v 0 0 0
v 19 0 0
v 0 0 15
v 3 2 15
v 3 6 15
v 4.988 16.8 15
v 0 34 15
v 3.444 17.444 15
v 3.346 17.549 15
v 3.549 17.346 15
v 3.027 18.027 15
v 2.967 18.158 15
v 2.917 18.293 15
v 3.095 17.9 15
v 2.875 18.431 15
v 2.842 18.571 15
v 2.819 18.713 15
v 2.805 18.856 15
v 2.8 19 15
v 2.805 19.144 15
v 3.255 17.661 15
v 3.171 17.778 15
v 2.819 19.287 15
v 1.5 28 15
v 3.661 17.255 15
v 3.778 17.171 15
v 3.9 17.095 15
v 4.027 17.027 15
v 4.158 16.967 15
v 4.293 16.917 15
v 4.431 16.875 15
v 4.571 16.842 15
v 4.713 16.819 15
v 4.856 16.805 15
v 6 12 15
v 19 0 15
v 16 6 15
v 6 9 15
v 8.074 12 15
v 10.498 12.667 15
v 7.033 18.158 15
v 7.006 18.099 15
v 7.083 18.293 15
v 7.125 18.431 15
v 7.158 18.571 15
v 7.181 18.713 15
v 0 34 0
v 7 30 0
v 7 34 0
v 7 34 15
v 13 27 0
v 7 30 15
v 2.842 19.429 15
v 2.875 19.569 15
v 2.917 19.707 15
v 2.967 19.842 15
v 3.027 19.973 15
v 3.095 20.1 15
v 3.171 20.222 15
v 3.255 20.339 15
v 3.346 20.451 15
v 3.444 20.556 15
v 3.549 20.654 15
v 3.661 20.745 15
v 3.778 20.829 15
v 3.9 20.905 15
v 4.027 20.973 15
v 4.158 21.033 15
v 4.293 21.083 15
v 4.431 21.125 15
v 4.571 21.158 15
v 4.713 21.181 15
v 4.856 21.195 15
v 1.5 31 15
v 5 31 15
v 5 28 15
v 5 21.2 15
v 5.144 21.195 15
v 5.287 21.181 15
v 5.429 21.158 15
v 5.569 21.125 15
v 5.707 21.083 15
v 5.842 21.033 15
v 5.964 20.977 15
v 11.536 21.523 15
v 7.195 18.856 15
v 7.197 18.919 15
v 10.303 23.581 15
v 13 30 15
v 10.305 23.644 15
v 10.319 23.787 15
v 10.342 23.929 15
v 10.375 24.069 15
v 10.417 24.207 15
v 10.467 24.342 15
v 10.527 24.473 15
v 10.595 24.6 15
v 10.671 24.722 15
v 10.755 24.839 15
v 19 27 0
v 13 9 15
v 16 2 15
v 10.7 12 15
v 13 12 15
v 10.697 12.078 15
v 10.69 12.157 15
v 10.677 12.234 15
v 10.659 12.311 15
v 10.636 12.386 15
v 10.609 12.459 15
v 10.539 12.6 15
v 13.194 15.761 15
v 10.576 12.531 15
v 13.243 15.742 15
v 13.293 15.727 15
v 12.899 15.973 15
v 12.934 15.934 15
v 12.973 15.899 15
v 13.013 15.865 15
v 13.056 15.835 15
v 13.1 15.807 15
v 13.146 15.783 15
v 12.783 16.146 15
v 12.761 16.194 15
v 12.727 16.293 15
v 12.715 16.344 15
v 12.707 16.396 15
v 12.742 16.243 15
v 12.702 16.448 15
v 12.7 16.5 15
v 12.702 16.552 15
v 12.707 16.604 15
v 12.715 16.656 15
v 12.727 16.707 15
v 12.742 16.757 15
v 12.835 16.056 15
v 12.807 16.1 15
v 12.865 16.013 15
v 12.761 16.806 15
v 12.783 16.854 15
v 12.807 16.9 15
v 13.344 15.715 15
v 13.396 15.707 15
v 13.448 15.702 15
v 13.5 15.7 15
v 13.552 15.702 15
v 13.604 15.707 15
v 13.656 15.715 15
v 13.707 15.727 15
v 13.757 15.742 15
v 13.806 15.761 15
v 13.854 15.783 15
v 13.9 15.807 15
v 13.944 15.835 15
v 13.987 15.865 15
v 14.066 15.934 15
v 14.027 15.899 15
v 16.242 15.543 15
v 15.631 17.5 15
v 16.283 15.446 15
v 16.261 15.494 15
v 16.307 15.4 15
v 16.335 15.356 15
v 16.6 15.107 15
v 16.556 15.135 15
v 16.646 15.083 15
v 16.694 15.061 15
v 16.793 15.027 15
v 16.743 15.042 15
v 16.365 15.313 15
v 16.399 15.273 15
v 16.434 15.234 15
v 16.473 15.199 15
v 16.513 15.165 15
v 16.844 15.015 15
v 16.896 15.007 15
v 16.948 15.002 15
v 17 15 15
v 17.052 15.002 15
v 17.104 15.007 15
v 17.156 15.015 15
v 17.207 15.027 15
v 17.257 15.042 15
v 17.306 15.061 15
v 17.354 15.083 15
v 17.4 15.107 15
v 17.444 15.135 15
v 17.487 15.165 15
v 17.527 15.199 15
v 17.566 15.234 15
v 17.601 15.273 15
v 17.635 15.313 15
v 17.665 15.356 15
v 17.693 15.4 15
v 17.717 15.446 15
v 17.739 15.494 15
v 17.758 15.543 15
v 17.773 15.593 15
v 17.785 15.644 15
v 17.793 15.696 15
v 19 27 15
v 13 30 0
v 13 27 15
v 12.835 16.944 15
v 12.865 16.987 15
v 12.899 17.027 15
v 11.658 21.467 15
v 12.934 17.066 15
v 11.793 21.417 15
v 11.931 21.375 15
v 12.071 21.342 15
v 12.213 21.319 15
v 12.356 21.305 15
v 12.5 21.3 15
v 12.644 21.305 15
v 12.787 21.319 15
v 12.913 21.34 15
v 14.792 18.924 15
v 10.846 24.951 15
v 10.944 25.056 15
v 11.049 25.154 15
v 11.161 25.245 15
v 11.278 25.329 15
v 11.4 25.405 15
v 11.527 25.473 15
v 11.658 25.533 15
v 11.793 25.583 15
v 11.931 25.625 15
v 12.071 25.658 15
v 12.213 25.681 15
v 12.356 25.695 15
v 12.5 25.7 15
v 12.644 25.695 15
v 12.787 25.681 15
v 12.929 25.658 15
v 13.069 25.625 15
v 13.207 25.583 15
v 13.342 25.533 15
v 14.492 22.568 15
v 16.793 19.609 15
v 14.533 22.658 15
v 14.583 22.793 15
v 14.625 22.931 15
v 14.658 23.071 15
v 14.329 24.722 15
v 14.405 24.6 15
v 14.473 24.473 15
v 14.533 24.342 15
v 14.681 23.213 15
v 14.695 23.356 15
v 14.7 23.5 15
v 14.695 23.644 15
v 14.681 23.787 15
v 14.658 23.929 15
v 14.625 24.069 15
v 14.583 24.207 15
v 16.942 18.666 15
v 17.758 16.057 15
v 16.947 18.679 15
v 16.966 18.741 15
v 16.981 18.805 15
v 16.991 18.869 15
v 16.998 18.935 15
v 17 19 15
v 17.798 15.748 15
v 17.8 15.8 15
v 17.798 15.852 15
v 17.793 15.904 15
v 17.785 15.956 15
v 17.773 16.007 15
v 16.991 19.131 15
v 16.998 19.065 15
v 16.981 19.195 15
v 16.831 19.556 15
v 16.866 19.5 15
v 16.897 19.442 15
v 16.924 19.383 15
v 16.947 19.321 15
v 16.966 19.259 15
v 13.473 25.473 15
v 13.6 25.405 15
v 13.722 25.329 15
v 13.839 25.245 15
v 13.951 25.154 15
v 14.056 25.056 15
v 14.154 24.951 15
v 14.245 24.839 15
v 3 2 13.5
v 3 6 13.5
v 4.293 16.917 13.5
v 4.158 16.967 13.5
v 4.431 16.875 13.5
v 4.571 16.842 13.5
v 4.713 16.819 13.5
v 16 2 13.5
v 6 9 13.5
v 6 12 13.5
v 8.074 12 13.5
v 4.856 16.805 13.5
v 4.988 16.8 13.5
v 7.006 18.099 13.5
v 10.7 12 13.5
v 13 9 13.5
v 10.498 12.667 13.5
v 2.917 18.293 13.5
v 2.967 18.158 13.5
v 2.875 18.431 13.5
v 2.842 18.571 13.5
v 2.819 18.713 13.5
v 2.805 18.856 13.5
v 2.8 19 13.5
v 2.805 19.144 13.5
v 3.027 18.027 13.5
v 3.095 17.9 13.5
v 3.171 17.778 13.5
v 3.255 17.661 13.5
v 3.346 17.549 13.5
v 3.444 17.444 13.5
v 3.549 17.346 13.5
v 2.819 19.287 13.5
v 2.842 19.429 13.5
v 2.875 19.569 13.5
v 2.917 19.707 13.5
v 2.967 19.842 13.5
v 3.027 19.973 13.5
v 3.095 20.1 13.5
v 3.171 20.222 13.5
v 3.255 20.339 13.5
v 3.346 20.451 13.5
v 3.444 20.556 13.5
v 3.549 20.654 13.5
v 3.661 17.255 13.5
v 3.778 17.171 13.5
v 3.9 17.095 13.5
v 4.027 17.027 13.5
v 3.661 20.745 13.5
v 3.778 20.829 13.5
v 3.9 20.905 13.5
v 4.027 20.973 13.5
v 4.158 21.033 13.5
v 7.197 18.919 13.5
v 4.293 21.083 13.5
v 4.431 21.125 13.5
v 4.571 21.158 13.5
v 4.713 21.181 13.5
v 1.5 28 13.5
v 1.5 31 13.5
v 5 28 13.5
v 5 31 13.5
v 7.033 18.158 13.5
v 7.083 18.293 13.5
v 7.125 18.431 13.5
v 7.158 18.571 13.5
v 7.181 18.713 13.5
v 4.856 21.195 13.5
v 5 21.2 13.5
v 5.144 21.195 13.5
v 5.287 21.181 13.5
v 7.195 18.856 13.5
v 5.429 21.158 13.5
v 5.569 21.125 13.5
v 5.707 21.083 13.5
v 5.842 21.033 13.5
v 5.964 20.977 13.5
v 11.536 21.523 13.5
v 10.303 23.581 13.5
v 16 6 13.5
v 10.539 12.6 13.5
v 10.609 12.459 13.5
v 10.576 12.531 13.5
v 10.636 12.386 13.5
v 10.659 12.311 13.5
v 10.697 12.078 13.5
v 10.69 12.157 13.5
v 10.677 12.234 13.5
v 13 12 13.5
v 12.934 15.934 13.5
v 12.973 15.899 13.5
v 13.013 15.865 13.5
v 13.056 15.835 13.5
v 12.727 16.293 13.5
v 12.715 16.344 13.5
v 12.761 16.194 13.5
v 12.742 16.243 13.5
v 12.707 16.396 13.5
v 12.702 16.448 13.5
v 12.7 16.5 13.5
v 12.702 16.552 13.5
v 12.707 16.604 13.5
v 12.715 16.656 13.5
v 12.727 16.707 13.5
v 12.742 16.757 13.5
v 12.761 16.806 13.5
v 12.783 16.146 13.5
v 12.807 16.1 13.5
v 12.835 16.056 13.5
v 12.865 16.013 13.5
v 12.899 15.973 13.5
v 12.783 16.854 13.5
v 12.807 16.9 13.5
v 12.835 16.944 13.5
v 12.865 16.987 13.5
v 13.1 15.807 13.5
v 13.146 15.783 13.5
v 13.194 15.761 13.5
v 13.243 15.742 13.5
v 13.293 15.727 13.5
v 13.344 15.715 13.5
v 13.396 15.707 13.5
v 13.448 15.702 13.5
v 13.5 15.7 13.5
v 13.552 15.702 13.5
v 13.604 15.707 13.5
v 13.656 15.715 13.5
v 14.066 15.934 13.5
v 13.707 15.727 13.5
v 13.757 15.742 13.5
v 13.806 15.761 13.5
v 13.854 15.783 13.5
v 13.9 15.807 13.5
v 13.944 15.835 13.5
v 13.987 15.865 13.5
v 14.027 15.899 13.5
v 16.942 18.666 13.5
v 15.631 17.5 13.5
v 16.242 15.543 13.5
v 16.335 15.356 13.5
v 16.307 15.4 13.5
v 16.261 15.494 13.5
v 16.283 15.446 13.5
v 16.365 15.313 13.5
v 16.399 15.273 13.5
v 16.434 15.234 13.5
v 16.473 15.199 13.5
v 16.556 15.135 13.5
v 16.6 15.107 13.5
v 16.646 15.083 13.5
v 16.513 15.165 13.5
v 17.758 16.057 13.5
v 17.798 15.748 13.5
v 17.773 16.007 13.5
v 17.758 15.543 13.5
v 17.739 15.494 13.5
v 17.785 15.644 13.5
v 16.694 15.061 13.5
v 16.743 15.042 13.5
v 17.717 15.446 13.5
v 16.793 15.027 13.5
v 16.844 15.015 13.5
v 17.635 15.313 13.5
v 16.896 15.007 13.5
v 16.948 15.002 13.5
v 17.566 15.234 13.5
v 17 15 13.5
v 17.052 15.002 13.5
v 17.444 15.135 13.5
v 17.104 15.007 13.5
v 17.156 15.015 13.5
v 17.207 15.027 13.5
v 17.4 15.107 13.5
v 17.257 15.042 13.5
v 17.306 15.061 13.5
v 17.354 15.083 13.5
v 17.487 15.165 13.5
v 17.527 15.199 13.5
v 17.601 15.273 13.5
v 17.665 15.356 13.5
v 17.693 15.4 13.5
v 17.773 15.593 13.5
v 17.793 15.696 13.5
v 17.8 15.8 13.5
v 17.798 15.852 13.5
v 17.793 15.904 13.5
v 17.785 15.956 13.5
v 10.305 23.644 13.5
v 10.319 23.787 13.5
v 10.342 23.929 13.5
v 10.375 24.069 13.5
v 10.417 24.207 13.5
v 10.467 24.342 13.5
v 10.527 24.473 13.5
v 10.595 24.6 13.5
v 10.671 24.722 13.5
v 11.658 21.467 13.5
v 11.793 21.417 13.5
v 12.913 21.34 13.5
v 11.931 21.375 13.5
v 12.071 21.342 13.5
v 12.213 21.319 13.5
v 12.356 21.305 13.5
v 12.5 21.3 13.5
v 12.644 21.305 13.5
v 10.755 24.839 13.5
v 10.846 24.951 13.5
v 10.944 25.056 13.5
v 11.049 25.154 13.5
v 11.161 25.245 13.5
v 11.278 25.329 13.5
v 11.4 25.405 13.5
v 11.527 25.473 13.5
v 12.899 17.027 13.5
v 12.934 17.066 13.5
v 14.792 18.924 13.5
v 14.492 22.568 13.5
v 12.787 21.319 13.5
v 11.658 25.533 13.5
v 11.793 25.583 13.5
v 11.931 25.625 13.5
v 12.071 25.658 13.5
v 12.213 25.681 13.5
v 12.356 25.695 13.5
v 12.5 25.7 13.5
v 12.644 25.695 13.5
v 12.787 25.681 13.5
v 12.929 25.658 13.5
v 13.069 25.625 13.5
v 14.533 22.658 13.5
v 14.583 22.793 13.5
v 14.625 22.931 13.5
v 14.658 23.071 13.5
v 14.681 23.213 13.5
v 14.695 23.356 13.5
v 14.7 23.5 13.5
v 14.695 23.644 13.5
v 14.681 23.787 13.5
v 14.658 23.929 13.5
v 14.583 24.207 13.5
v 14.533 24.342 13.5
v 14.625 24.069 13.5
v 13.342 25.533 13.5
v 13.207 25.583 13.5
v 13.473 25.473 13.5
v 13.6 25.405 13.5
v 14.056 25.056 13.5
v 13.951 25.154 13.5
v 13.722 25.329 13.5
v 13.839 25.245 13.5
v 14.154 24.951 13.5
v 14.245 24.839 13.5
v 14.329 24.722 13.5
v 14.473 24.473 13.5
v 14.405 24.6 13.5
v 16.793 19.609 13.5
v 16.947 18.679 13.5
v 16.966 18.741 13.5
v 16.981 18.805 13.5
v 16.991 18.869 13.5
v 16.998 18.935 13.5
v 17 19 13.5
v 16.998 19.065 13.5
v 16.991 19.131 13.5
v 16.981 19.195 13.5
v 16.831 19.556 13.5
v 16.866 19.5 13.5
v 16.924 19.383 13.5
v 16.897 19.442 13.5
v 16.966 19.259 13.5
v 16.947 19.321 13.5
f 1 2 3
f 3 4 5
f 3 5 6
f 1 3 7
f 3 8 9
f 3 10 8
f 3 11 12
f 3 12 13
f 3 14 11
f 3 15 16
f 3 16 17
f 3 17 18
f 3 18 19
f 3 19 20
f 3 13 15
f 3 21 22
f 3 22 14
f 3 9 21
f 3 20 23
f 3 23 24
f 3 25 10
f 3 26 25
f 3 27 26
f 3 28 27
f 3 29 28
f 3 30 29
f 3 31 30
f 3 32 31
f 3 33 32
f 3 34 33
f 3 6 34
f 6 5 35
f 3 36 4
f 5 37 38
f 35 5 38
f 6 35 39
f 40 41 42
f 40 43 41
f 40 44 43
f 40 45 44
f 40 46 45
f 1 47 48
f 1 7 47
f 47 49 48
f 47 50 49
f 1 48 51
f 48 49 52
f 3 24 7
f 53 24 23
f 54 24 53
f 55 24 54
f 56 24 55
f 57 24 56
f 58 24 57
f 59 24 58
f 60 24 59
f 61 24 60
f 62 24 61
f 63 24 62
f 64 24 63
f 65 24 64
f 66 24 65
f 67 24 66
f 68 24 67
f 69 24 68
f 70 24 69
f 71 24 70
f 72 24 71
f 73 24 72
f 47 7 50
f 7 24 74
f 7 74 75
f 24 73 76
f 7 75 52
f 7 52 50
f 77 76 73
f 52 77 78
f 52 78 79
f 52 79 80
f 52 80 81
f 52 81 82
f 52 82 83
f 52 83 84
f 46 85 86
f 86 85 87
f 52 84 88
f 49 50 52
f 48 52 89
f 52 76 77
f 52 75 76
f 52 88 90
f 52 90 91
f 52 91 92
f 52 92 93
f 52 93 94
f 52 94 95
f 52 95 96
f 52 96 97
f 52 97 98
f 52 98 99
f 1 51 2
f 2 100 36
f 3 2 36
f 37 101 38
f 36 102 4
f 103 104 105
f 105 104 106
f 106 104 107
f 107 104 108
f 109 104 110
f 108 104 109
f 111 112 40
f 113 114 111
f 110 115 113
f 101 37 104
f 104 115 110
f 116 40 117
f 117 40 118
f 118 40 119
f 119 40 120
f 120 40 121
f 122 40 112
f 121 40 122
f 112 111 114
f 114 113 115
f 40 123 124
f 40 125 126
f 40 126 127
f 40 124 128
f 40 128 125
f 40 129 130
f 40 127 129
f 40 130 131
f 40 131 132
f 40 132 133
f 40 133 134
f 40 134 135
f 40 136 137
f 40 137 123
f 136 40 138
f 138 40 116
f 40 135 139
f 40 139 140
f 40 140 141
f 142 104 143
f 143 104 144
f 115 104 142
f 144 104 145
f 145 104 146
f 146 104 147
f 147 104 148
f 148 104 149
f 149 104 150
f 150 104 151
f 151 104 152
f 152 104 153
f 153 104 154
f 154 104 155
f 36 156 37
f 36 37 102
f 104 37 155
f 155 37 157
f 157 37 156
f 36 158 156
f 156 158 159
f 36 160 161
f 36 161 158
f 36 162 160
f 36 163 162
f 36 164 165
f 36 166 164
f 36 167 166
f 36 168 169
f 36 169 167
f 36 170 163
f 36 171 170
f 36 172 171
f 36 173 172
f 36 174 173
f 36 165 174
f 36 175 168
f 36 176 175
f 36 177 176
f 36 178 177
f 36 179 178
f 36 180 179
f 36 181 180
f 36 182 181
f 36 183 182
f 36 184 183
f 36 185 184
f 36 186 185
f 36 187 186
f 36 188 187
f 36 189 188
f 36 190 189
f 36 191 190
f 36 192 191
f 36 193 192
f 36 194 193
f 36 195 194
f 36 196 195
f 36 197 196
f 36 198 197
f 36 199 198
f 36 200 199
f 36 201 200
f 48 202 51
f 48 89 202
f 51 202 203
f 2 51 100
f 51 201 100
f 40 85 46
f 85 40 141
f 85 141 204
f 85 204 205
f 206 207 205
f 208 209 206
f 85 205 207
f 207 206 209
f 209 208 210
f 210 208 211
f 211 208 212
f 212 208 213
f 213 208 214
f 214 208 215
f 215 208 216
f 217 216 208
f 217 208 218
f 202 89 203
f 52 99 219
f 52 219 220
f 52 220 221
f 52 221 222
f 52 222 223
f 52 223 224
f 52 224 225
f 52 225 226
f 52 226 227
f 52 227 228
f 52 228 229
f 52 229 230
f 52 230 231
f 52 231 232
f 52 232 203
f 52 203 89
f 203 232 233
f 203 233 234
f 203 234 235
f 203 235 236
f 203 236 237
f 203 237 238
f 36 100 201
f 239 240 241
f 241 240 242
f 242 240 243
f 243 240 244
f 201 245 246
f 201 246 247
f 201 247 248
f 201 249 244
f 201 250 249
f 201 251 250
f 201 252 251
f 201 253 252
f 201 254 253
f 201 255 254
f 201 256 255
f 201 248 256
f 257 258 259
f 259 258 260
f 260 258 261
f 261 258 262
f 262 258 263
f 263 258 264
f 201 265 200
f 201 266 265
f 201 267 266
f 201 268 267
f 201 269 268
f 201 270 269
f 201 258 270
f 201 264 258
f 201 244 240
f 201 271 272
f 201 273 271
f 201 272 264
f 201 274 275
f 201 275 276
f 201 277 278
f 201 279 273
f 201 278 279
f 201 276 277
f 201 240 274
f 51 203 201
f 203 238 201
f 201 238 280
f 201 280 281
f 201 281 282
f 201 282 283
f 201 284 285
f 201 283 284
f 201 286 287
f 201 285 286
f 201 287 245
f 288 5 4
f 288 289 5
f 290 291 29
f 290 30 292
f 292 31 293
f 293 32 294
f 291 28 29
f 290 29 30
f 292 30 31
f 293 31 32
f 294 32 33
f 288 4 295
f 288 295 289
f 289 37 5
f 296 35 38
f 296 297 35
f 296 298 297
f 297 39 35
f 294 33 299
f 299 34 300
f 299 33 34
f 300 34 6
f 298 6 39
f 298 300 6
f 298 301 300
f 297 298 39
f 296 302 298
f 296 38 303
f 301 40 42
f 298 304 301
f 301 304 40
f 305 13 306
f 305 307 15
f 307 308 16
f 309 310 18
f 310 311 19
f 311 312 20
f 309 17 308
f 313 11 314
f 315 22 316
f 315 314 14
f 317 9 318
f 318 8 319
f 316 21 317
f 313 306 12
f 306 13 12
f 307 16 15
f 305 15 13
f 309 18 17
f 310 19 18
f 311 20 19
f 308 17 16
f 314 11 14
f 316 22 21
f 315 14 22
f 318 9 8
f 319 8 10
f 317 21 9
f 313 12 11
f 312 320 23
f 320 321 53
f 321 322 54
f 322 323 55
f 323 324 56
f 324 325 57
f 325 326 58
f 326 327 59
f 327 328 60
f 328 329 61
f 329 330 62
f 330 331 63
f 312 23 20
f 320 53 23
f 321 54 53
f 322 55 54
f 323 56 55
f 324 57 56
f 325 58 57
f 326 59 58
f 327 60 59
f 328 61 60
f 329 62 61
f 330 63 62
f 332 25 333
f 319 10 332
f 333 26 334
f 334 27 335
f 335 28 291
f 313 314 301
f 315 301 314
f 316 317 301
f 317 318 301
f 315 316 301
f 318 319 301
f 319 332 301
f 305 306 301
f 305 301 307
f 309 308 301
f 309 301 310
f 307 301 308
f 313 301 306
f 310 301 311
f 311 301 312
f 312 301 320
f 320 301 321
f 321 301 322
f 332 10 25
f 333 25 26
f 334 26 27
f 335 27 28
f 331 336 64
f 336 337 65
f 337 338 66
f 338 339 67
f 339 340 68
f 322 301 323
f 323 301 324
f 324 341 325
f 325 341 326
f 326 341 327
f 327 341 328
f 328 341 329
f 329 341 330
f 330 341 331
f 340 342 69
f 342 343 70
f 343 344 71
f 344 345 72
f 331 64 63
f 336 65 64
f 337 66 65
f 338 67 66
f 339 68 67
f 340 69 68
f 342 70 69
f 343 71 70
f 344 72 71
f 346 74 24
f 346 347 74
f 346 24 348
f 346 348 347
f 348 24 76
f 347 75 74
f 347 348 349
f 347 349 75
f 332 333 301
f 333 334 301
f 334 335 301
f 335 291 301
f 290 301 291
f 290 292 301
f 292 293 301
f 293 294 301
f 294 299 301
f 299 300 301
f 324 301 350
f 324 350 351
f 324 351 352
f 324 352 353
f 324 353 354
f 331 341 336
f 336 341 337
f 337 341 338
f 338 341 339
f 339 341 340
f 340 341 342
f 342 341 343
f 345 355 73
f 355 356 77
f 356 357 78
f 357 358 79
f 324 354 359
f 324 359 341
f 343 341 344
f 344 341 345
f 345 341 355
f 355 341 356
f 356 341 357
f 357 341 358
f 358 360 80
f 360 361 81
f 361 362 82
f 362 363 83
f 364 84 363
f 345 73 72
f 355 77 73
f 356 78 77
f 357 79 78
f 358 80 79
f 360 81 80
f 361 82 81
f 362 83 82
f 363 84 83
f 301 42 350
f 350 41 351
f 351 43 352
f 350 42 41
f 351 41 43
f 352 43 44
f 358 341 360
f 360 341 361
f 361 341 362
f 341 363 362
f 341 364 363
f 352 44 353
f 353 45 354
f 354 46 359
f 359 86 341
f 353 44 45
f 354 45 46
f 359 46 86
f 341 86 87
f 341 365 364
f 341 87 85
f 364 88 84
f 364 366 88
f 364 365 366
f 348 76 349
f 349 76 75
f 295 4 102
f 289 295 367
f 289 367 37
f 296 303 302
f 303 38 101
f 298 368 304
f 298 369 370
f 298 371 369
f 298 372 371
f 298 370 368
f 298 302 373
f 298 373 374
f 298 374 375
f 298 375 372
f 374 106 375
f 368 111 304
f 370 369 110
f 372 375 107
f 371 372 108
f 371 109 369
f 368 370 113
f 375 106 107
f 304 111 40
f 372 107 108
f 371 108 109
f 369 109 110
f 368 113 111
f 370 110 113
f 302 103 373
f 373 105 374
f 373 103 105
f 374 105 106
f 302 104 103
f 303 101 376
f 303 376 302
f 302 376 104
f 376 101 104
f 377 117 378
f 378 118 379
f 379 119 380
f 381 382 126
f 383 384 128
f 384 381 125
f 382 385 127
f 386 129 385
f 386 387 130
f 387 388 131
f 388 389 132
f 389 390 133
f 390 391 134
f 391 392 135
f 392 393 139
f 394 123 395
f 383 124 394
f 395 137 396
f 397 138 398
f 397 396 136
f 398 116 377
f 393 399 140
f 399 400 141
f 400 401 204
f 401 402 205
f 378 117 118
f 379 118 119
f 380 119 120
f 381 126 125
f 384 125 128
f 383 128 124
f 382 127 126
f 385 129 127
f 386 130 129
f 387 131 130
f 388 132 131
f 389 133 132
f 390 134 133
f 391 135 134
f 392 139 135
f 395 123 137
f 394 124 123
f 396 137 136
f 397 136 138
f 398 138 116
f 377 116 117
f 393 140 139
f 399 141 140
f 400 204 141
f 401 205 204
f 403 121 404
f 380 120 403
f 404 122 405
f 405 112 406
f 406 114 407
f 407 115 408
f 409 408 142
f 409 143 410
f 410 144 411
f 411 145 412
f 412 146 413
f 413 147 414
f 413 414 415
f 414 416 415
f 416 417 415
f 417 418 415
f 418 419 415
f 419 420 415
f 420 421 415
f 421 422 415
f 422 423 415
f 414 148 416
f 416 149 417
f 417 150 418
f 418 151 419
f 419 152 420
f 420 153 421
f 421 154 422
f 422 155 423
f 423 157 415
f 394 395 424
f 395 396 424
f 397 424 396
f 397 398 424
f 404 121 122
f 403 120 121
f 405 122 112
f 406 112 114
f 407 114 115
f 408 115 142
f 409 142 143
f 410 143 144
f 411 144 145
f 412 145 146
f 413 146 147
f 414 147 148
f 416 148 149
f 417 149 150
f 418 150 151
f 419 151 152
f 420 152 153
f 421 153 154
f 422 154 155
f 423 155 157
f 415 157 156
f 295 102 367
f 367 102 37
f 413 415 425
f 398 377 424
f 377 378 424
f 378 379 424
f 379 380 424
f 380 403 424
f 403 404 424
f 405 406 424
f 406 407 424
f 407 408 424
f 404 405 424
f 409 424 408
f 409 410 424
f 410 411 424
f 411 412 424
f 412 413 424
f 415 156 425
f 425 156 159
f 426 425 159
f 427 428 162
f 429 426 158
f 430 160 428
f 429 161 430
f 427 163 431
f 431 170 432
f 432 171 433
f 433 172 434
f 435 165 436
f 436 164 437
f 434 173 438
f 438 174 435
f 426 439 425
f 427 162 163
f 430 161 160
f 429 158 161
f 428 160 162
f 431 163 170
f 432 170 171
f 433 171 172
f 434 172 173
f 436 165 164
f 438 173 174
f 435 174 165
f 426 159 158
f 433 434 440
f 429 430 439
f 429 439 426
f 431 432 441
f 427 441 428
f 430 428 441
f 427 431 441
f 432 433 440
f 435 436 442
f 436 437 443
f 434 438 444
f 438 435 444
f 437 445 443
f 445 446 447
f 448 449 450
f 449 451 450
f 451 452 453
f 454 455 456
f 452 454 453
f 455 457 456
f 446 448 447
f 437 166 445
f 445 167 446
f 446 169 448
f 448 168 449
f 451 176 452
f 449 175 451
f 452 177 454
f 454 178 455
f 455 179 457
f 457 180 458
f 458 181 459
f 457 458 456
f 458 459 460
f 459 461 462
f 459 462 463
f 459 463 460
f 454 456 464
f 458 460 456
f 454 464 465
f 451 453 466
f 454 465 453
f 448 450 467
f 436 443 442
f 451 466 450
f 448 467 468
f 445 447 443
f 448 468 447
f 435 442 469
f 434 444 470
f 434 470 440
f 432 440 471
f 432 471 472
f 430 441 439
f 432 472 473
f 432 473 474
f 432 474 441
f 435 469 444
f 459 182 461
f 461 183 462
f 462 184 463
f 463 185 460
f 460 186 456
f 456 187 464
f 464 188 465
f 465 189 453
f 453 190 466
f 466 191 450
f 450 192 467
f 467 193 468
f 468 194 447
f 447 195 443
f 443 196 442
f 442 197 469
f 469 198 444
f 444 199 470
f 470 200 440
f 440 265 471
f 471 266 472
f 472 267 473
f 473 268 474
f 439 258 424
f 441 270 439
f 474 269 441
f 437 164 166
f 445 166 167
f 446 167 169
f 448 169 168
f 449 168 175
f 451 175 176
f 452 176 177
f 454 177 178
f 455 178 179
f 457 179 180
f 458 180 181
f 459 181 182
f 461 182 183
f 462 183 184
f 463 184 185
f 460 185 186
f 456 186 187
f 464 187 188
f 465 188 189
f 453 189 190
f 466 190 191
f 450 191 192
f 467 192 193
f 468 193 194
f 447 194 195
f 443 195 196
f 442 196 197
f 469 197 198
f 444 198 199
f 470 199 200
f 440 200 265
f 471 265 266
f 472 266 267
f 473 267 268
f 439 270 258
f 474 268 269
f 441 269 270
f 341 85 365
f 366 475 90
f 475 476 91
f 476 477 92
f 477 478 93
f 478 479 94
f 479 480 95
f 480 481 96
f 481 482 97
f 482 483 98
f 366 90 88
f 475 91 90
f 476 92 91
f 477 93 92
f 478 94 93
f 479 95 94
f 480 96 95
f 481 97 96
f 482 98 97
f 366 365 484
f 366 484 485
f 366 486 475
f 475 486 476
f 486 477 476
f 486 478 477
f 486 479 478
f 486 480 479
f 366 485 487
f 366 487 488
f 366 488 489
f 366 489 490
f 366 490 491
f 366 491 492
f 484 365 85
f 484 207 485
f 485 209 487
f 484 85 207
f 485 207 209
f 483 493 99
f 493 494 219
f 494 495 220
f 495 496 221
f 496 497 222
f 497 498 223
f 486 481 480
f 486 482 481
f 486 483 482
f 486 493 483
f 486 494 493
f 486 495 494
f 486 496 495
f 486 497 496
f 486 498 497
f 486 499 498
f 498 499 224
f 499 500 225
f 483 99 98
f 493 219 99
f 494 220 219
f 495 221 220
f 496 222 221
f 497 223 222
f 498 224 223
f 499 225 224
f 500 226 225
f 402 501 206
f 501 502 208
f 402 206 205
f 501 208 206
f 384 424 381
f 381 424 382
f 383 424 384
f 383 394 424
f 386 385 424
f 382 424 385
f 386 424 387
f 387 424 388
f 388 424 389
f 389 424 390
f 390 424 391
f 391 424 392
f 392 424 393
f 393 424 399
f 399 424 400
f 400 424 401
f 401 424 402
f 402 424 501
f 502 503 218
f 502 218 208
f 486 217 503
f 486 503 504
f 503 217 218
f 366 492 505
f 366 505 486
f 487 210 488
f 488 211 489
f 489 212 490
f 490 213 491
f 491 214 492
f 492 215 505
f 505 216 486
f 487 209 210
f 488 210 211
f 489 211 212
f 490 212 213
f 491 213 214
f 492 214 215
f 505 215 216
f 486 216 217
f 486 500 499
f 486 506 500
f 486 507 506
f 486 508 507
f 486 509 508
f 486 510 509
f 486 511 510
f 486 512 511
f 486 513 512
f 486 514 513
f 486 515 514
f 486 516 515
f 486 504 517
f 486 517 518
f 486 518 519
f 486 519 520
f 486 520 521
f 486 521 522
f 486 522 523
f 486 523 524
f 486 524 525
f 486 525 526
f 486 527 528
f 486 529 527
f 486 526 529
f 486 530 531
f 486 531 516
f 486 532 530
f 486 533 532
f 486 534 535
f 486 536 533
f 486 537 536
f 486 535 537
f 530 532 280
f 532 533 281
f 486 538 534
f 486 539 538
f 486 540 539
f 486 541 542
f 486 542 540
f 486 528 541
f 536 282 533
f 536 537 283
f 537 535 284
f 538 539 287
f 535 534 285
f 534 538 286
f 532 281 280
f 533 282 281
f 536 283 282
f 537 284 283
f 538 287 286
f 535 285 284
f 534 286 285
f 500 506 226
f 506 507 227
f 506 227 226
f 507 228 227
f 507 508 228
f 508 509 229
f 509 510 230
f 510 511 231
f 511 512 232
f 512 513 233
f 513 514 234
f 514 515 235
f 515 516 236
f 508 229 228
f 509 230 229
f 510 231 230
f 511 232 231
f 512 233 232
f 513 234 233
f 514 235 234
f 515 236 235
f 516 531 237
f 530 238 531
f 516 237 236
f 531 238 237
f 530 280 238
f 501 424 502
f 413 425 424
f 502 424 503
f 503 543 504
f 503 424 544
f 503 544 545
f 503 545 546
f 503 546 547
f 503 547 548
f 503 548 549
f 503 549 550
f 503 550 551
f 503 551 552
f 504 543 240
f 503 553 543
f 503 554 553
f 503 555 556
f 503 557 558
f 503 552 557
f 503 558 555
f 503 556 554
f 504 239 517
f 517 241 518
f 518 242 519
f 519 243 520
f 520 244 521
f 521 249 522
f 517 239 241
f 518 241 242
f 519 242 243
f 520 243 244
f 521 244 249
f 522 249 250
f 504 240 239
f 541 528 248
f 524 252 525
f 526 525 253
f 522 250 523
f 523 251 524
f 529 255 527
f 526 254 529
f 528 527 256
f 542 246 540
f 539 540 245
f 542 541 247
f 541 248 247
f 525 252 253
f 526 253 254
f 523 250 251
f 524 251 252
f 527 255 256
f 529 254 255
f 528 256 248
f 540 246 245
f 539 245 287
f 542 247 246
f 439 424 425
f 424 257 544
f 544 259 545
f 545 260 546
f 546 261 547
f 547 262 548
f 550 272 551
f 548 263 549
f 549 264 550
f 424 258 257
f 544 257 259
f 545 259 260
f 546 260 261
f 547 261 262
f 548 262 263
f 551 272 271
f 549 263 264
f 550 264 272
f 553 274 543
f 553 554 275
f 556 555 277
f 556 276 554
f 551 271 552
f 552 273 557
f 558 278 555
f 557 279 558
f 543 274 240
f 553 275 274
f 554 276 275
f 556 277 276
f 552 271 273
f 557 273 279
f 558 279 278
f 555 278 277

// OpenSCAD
// Building facade miniature for board games.
// Millimetres. X=width, Y=height, Z=depth.
// Print flat at Z=0; straight base at Y=0; front at Z=15.
// All recesses are blind and 1.5 mm deep. This is a solid piece.
$fn=96;
depth=15;
recess=1.5;
module rect(x,y,w,h) { translate([x,y]) square([w,h]); }
module disc(x,y,r) { translate([x,y]) circle(r=r); }
module line(a,b,w=1.4) {
    hull() { translate(a) circle(d=w); translate(b) circle(d=w); }
}
module frame(x,y,w,h,t=1.4) {
    difference() { rect(x,y,w,h); rect(x+t,y+t,w-2*t,h-2*t); }
}
module gear(x,y,r=6,inner=2.4) {
    translate([x,y]) difference() {
        polygon([for(i=[0:(r<4?15:23)]) let(n=(r<4?16:24),a=(i+1)*360/n,rr=(i%4<2?r:r-min(1.5,r*0.21))) [rr*cos(a),rr*sin(a)]]);
        circle(r=inner);
    }
}
module car(x,y,w=14,h=5) {
    translate([x,y]) union() {
        polygon([[0,0.8],[0,h*0.48],[w*0.2,h*0.48],
                 [w*0.35,h],[w*0.67,h],[w*0.82,h*0.48],
                 [w,h*0.35],[w,0.8]]);
        disc(w*0.23,0.8,1.3); disc(w*0.77,0.8,1.3);
    }
}
module recycling(x,y,r=6) {
    translate([x,y]) for(a=[0,120,240]) rotate(a) {
        line([-3.8,3.2],[1.2,3.2],1.6);
        polygon([[1.2,1.7],[4.2,3.2],[1.2,4.7]]);
    }
}
module cutface() { translate([0,0,depth-recess]) linear_extrude(height=recess+0.5) facade(); }
// All details are recessed into the same solid facade.
difference() {
    linear_extrude(height=depth) outline();
    cutface();
}


module outline() {
    polygon([[0,0],[19,0],[19,27],[13,27],[13,30],[7,30],[7,34],[0,34]]);
}
module facade() {
    rect(3,2,13,4);
    rect(6,9,7,3);
    line([9.5,12],[5,19],2.4); disc(5,19,2.2);
    line([5,19],[12.5,23.5],2.4); disc(12.5,23.5,2.2);
    line([12.5,23.5],[16,19],2.0);
    line([16,19],[13.5,16.5],1.6);
    line([16,19],[17,15.8],1.6);
    rect(1.5,28,3.5,3);
}
